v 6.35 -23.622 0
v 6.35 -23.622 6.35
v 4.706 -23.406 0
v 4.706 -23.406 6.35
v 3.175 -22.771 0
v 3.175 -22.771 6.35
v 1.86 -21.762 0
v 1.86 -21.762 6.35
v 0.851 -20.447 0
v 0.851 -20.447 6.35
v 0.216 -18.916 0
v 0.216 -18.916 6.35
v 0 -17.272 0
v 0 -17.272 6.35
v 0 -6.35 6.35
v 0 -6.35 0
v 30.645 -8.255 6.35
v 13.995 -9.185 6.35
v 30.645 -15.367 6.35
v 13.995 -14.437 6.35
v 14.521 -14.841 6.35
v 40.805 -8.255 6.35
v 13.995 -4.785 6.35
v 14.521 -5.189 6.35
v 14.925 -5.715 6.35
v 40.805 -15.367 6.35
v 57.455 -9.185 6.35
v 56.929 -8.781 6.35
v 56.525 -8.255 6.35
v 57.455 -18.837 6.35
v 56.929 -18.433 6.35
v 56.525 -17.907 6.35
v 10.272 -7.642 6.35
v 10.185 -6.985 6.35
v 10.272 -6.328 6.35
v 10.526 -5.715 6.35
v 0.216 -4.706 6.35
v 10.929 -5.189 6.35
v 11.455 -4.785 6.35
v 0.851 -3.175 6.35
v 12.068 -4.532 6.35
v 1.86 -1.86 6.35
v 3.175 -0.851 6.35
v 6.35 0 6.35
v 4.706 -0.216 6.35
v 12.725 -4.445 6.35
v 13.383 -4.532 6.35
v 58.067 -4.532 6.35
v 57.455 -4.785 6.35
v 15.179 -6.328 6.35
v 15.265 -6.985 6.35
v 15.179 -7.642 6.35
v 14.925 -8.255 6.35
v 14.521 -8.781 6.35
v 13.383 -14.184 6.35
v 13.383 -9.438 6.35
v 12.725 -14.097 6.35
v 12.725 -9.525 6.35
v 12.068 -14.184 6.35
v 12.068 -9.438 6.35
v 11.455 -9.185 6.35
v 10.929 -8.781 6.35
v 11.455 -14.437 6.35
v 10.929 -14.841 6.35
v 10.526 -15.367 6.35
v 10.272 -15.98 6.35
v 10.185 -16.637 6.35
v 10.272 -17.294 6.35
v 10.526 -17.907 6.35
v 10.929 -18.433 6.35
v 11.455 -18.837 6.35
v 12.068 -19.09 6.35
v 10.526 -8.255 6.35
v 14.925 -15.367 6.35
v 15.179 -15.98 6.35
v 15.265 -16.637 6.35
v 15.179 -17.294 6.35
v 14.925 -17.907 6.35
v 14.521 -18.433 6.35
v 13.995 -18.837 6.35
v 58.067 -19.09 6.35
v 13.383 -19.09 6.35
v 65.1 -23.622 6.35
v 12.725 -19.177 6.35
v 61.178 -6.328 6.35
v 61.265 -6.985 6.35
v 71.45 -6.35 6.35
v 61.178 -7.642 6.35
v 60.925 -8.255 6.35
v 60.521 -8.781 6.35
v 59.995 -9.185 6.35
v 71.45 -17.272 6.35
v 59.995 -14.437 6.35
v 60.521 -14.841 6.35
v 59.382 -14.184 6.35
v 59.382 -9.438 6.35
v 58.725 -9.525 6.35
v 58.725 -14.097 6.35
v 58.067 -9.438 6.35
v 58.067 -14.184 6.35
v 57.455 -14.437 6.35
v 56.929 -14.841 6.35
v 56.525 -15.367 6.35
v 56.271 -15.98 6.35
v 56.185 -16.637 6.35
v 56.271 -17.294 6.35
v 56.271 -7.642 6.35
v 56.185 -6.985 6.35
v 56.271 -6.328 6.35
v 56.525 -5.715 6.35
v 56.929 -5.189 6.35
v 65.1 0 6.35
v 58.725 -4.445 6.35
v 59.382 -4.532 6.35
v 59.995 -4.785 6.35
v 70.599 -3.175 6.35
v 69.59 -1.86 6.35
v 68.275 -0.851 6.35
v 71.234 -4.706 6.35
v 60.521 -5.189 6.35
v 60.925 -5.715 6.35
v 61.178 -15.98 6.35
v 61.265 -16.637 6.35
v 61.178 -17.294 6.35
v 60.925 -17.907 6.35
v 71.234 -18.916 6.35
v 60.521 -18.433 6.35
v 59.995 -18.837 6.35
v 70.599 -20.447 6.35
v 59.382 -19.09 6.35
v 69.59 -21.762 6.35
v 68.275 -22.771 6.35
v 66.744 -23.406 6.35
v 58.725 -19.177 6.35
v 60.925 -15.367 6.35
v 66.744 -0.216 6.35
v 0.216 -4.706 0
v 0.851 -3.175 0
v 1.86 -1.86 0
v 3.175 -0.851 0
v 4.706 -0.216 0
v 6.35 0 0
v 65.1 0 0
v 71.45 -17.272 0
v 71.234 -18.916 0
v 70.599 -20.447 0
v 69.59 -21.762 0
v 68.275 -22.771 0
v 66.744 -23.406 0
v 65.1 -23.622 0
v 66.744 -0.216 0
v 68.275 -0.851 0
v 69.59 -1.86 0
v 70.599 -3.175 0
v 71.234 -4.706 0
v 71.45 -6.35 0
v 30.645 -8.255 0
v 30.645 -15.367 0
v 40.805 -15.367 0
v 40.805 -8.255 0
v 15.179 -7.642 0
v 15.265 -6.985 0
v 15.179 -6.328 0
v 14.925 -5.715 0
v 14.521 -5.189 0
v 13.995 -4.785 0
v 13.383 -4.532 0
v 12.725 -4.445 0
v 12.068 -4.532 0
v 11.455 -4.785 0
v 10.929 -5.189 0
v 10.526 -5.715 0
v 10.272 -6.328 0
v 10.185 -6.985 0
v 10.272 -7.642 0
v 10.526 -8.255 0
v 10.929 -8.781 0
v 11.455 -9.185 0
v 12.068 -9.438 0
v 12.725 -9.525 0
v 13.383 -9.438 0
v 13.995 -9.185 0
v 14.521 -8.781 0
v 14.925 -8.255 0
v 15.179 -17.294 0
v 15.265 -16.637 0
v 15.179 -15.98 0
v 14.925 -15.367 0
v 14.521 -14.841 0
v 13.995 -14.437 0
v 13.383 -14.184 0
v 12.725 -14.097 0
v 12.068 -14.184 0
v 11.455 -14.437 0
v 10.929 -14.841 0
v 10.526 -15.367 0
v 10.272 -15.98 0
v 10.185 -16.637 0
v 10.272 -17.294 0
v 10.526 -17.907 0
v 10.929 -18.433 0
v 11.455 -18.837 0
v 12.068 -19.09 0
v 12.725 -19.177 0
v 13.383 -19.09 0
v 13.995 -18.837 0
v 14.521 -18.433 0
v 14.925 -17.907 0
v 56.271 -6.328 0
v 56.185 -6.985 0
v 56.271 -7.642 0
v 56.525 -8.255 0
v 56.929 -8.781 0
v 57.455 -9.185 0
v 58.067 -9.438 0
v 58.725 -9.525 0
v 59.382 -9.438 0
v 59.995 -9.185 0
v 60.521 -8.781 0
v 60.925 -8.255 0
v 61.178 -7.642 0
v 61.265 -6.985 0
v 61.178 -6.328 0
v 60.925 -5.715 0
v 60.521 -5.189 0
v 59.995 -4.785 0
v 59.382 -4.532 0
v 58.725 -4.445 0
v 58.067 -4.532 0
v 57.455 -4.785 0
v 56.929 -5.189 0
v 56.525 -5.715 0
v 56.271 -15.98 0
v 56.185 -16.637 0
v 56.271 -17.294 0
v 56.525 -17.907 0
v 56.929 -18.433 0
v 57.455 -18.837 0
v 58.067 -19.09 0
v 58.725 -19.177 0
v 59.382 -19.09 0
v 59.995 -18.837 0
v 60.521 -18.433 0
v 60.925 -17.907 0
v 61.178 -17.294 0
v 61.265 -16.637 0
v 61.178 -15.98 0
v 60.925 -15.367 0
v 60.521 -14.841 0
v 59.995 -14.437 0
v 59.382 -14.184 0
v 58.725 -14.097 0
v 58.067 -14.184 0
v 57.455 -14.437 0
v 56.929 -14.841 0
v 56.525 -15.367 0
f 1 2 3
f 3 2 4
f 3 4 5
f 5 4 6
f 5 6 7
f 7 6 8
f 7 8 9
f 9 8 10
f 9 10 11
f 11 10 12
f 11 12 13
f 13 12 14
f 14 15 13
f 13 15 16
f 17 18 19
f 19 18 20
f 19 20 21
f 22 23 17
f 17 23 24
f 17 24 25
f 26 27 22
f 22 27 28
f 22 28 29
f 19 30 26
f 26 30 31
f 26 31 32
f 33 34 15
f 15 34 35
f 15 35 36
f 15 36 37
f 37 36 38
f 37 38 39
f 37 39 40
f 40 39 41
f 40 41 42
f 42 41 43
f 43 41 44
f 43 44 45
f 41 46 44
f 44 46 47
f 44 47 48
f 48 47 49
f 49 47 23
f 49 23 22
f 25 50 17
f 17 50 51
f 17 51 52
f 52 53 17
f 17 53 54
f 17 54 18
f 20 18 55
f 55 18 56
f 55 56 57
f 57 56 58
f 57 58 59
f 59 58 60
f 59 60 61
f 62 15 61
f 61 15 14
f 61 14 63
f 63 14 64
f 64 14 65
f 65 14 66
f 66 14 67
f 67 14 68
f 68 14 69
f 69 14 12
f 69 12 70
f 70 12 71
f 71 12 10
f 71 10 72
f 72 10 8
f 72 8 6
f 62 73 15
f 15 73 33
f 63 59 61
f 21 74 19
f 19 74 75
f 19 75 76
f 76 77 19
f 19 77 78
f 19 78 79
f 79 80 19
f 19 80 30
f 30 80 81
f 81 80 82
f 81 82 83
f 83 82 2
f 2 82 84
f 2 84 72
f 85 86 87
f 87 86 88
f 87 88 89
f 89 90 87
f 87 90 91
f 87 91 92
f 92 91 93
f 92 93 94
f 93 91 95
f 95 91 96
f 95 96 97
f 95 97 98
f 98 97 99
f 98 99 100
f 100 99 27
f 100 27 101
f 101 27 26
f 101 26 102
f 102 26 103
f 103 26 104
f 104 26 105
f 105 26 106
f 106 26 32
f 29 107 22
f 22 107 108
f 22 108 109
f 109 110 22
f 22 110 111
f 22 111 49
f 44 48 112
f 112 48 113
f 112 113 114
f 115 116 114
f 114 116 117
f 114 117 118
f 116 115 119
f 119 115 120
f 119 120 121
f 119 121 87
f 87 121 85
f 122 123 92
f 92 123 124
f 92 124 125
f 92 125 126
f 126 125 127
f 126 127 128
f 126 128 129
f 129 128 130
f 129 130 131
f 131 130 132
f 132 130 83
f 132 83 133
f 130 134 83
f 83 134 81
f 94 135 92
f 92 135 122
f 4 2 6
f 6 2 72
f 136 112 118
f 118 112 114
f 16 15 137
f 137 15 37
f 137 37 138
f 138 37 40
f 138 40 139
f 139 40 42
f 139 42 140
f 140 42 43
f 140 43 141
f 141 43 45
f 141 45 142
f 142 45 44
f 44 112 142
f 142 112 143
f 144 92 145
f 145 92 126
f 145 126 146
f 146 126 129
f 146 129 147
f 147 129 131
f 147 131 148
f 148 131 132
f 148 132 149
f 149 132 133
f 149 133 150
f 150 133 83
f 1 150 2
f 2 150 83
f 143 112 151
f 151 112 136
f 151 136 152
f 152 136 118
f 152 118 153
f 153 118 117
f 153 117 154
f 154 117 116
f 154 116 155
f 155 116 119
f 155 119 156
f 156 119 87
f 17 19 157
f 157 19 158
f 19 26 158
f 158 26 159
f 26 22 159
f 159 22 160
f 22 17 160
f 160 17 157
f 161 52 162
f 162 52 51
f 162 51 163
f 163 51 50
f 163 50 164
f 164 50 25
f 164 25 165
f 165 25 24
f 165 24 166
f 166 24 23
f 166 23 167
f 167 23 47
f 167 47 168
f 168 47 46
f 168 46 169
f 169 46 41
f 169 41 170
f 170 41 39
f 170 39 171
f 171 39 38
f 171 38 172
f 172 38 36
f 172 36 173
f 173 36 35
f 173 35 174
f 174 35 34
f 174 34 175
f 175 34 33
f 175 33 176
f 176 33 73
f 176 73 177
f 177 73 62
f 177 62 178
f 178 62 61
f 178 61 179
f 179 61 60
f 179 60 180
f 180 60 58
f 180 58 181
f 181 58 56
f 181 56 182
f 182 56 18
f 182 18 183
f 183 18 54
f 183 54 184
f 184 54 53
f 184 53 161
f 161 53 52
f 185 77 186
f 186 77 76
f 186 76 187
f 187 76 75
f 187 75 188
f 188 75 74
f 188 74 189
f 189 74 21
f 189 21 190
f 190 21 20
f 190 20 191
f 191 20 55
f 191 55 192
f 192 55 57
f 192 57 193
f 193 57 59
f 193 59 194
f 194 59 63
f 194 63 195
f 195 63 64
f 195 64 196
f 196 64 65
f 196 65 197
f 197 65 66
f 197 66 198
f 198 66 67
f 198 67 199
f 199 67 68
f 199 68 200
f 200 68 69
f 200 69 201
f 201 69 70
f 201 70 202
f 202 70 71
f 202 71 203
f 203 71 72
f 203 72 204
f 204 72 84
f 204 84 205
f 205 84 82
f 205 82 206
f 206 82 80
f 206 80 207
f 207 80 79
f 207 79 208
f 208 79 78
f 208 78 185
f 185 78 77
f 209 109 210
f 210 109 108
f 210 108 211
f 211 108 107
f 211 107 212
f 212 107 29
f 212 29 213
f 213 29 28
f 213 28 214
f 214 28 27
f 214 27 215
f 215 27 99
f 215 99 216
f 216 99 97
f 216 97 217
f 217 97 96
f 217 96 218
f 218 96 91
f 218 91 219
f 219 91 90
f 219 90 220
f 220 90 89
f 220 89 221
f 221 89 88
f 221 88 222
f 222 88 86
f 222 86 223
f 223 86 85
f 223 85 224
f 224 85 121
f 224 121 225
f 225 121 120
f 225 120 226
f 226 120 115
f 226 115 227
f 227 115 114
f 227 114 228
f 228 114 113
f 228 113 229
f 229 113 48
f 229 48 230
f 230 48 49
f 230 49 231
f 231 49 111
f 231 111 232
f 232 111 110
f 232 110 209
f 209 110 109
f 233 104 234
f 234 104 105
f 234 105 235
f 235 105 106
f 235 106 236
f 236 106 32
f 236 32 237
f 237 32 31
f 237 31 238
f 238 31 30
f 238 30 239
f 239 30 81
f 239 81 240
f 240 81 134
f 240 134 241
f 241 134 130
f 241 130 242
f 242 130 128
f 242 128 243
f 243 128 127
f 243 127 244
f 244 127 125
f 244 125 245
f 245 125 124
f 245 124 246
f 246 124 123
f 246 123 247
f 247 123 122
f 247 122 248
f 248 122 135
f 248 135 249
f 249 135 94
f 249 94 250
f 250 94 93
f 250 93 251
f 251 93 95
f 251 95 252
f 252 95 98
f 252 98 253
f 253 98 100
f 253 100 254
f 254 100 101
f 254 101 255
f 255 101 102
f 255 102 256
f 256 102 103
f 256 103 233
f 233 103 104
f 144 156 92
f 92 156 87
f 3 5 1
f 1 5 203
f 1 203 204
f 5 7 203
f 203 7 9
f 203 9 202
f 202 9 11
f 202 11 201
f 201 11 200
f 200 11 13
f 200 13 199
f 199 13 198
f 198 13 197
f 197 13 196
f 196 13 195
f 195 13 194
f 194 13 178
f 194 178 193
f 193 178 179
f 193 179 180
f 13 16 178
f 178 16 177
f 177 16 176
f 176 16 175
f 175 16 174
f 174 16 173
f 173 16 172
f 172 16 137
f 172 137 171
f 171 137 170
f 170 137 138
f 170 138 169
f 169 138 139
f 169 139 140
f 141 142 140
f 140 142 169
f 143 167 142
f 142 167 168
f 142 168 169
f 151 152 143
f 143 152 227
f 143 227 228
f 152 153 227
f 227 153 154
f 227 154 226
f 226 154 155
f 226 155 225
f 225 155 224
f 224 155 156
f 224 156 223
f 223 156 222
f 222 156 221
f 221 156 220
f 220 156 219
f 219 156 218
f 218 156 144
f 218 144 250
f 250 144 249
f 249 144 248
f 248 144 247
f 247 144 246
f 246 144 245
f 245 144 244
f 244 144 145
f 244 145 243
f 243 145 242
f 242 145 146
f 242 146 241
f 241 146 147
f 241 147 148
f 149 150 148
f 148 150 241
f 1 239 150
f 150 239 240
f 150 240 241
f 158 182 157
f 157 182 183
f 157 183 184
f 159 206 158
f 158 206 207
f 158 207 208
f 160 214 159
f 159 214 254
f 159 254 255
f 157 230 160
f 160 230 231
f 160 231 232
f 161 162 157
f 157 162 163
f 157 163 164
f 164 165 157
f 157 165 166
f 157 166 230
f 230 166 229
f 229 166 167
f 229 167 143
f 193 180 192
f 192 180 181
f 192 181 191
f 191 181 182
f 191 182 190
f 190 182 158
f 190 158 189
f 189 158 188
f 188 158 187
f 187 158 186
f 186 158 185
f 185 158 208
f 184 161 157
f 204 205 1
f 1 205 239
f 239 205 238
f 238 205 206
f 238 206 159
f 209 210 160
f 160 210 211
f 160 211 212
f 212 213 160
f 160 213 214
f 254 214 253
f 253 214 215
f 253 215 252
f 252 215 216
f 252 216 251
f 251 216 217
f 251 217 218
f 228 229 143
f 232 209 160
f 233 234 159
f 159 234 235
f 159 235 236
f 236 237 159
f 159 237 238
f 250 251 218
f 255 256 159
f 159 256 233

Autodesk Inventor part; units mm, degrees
ref_plane "YZ Plane" through (0, 0, 0) normal (1, 0, 0) x (0, 1, 0)
ref_plane "XZ Plane" through (0, 0, 0) normal (0, 1, 0) x (-1, 0, 0)
sketch "Sketch1" plane through (0, 0, 0) normal (0, 0, 1) x (1, 0, 0)
  line L0 (0, 0) -> (71.4502, 0)
  line L1 (71.4502, 0) -> (71.4502, -23.622)
  line L2 (71.4502, -23.622) -> (0, -23.622)
  line L3 (0, -23.622) -> (0, 0)
  dimension "d0" = 71.4502
  dimension "d1" = 23.622
extrude "Extrusion1" add sketch "Sketch1" along normal blind 6.35
sketch "Sketch3" plane through (0, 0, 6.35) normal (0, 0, 1) x (1, 0, 0)
  line L0 (0, -23.622) -> (71.4502, -23.622) projected
  line L1 (71.4502, 0) -> (0, 0) projected
  line L2 (71.4502, -23.622) -> (71.4502, 0) projected
  point P0 (58.7248, -6.985)
  point P1 (58.7248, -16.637)
  dimension "d15" = 6.985
  dimension "d16" = 6.985
  dimension "d17" = 12.7254
  dimension "d18" = 12.7254
hole "Hole2" at (58.7248, -6.985, 6.35) at (58.7248, -16.637, 6.35) direction (0, 0, -1) diameter 5.08 depth 25.4 tip angle 118
ref_plane "Work Plane1" through (35.7251, -23.622, 0) normal (1, 0, 0) x (0, 0, -1)
mirror "Mirror1" about plane through (35.7251, -23.622, 0) normal (1, 0, 0) of "Hole2"
sketch "Sketch4" plane through (0, 0, 6.35) normal (0, 0, 1) x (1, 0, 0)
  line L0 (30.6451, -8.255) -> (40.8051, -8.255)
  line L1 (40.8051, -8.255) -> (40.8051, -15.367)
  line L2 (40.8051, -15.367) -> (30.6451, -15.367)
  line L3 (30.6451, -15.367) -> (30.6451, -8.255)
  line L4 (71.4502, -23.622) -> (71.4502, 0) projected
  line L5 (0, 0) -> (0, -23.622) projected
  line L6 (71.4502, 0) -> (0, 0) projected
  line L7 (0, -23.622) -> (71.4502, -23.622) projected
  dimension "d26" = 10.16
  dimension "d27" = 7.112
  dimension "d28" = 71.4502
  dimension "d29" = 30.6451
  dimension "d30" = 8.255
  dimension "d31" = 23.622
extrude "Extrusion2" cut sketch "Sketch4" against normal blind 6.35 contours L0 L1 L2 L3
fillet "Fillet1" radius 6.35 4 edges at (71.4502, 0, 3.175) (71.4502, -23.622, 3.175) (0, 0, 3.175) (0, -23.622, 3.175)
equation "\"d16\" = d15"
equation "\"d17\" = d18"
properties part number "phone cord holder"
